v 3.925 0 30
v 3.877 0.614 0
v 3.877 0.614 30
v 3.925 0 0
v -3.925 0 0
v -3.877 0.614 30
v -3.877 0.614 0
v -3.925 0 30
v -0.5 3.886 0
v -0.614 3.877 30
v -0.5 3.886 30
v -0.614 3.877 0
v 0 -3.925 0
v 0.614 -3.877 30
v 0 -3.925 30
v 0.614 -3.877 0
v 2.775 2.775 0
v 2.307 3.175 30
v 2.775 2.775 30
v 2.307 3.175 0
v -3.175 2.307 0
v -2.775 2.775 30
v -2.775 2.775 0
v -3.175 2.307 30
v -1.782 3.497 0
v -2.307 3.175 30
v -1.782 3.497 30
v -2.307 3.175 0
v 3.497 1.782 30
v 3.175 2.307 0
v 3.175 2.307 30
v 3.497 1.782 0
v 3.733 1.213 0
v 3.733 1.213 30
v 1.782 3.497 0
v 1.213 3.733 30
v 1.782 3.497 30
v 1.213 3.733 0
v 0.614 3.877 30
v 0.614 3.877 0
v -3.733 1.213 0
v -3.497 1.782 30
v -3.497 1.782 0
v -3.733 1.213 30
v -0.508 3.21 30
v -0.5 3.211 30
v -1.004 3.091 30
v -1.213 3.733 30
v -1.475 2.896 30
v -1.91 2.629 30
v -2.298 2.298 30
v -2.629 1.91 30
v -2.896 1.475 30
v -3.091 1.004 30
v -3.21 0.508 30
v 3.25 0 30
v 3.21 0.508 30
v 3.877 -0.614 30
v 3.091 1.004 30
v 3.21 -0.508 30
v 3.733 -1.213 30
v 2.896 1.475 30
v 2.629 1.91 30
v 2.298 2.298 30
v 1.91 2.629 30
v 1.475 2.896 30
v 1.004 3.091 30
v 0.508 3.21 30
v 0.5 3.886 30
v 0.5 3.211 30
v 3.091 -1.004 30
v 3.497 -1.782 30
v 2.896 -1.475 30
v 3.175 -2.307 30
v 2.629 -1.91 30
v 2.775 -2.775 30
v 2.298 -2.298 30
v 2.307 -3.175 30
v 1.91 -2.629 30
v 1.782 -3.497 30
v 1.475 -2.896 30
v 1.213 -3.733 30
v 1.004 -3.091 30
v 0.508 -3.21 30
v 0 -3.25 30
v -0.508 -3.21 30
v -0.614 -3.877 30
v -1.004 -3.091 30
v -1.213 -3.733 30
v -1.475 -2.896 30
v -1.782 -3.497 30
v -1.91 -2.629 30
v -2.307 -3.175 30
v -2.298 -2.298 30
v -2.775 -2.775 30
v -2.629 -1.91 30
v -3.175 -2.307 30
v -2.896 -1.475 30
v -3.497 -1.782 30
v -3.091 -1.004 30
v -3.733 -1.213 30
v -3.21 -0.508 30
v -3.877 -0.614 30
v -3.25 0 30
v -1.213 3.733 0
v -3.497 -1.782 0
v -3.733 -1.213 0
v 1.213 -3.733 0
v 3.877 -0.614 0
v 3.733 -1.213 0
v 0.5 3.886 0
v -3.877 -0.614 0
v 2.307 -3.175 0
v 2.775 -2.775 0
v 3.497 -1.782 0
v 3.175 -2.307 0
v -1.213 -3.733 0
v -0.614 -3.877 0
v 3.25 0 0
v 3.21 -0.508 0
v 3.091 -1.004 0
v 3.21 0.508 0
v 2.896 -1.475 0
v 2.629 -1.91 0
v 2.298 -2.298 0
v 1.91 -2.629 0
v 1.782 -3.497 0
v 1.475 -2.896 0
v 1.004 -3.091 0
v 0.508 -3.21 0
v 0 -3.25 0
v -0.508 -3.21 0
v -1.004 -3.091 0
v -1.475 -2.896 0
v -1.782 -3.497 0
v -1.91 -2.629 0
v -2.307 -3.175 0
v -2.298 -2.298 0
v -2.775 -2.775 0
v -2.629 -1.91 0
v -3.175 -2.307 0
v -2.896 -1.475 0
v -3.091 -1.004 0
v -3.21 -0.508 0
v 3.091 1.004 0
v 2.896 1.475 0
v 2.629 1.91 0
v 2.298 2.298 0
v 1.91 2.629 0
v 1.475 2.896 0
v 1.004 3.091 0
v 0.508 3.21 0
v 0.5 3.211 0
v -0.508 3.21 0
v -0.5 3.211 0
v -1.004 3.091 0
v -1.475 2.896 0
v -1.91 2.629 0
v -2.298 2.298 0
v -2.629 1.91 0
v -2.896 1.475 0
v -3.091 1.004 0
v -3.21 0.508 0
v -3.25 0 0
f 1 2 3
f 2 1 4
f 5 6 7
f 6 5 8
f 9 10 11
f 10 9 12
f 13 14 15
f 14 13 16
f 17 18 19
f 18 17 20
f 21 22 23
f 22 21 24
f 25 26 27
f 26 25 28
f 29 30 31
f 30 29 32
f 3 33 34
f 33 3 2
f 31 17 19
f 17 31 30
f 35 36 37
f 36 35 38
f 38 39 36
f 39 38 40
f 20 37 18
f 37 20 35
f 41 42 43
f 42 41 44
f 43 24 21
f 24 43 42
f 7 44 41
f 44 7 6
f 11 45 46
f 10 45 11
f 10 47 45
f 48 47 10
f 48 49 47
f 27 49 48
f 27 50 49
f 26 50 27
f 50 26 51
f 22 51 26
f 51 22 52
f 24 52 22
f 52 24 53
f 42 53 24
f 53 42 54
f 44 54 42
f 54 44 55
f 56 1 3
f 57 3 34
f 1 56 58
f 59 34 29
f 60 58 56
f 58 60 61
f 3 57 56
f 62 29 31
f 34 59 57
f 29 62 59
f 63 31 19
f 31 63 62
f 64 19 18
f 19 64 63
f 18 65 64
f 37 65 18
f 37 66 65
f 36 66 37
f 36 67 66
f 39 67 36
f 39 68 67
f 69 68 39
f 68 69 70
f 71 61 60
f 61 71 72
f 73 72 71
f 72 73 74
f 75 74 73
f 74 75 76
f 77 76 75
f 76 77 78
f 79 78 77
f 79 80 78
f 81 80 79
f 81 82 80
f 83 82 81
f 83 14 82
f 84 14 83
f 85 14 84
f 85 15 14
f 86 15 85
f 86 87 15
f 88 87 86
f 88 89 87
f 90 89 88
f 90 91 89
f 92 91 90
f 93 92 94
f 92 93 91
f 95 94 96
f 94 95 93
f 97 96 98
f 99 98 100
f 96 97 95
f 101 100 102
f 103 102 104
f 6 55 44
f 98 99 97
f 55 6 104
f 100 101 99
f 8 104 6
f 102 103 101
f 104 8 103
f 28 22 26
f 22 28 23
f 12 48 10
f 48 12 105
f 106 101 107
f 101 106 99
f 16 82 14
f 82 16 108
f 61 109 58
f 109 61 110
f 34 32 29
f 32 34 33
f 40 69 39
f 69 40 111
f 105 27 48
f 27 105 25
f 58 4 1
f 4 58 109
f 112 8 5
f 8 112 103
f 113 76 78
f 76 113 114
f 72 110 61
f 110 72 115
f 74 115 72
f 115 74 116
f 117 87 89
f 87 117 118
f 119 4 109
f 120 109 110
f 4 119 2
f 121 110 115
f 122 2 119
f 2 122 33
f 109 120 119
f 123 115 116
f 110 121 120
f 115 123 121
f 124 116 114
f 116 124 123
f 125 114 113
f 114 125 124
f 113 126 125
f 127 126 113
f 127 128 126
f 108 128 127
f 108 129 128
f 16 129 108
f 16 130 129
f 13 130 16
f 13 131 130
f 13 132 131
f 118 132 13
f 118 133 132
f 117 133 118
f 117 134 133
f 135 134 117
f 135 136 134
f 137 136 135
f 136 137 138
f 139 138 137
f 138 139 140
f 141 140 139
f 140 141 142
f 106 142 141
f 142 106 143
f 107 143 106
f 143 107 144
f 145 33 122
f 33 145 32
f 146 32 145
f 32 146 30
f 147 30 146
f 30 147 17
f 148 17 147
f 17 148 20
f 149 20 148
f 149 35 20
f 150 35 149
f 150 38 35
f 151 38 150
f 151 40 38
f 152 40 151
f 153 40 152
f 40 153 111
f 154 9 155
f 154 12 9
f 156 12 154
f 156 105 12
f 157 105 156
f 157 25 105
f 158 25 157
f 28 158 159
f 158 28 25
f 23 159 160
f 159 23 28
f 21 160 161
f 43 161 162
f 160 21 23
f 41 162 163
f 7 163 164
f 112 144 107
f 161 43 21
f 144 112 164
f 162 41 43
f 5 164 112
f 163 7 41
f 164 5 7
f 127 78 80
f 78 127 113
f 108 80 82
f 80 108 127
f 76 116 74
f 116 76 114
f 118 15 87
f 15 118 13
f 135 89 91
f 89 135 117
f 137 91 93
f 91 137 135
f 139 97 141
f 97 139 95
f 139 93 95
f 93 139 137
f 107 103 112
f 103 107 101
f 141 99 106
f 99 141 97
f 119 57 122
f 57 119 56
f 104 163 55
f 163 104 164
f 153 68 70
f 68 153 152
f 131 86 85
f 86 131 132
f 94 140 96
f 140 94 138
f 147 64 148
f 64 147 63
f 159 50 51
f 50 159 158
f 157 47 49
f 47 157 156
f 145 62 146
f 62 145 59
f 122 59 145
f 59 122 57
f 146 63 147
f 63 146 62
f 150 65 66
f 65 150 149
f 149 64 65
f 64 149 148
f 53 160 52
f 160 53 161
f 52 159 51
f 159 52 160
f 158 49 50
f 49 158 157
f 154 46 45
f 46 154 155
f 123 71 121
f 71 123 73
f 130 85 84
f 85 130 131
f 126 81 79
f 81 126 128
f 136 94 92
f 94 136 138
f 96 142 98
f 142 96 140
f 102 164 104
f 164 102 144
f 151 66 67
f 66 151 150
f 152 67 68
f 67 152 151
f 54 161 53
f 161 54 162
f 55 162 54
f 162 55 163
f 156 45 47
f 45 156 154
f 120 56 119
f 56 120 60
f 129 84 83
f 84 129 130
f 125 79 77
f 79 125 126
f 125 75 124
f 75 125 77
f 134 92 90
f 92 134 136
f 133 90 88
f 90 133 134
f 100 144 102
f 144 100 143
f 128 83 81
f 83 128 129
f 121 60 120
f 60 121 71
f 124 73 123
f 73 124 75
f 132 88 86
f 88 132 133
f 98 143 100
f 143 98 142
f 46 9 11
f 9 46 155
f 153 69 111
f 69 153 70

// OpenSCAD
// Shaft Bushing
// Bushing for inside 8mm coupler, to a 6.35mm motor shaft

motorOD = 6.35;
motorMargin = 0.15;
couplerID = 8.0;
couplerMargin = 0.15;
h = 30;


slitW = 1;


$fn = 40;

difference() {
    cylinder(d=couplerID-couplerMargin, h=h);
    
    cylinder(d=motorOD+motorMargin, h=1000, center=true);
    
    // Remove slit
    translate([-slitW/2, 0, -1]) cube([slitW, 1000, 1000]);
}
